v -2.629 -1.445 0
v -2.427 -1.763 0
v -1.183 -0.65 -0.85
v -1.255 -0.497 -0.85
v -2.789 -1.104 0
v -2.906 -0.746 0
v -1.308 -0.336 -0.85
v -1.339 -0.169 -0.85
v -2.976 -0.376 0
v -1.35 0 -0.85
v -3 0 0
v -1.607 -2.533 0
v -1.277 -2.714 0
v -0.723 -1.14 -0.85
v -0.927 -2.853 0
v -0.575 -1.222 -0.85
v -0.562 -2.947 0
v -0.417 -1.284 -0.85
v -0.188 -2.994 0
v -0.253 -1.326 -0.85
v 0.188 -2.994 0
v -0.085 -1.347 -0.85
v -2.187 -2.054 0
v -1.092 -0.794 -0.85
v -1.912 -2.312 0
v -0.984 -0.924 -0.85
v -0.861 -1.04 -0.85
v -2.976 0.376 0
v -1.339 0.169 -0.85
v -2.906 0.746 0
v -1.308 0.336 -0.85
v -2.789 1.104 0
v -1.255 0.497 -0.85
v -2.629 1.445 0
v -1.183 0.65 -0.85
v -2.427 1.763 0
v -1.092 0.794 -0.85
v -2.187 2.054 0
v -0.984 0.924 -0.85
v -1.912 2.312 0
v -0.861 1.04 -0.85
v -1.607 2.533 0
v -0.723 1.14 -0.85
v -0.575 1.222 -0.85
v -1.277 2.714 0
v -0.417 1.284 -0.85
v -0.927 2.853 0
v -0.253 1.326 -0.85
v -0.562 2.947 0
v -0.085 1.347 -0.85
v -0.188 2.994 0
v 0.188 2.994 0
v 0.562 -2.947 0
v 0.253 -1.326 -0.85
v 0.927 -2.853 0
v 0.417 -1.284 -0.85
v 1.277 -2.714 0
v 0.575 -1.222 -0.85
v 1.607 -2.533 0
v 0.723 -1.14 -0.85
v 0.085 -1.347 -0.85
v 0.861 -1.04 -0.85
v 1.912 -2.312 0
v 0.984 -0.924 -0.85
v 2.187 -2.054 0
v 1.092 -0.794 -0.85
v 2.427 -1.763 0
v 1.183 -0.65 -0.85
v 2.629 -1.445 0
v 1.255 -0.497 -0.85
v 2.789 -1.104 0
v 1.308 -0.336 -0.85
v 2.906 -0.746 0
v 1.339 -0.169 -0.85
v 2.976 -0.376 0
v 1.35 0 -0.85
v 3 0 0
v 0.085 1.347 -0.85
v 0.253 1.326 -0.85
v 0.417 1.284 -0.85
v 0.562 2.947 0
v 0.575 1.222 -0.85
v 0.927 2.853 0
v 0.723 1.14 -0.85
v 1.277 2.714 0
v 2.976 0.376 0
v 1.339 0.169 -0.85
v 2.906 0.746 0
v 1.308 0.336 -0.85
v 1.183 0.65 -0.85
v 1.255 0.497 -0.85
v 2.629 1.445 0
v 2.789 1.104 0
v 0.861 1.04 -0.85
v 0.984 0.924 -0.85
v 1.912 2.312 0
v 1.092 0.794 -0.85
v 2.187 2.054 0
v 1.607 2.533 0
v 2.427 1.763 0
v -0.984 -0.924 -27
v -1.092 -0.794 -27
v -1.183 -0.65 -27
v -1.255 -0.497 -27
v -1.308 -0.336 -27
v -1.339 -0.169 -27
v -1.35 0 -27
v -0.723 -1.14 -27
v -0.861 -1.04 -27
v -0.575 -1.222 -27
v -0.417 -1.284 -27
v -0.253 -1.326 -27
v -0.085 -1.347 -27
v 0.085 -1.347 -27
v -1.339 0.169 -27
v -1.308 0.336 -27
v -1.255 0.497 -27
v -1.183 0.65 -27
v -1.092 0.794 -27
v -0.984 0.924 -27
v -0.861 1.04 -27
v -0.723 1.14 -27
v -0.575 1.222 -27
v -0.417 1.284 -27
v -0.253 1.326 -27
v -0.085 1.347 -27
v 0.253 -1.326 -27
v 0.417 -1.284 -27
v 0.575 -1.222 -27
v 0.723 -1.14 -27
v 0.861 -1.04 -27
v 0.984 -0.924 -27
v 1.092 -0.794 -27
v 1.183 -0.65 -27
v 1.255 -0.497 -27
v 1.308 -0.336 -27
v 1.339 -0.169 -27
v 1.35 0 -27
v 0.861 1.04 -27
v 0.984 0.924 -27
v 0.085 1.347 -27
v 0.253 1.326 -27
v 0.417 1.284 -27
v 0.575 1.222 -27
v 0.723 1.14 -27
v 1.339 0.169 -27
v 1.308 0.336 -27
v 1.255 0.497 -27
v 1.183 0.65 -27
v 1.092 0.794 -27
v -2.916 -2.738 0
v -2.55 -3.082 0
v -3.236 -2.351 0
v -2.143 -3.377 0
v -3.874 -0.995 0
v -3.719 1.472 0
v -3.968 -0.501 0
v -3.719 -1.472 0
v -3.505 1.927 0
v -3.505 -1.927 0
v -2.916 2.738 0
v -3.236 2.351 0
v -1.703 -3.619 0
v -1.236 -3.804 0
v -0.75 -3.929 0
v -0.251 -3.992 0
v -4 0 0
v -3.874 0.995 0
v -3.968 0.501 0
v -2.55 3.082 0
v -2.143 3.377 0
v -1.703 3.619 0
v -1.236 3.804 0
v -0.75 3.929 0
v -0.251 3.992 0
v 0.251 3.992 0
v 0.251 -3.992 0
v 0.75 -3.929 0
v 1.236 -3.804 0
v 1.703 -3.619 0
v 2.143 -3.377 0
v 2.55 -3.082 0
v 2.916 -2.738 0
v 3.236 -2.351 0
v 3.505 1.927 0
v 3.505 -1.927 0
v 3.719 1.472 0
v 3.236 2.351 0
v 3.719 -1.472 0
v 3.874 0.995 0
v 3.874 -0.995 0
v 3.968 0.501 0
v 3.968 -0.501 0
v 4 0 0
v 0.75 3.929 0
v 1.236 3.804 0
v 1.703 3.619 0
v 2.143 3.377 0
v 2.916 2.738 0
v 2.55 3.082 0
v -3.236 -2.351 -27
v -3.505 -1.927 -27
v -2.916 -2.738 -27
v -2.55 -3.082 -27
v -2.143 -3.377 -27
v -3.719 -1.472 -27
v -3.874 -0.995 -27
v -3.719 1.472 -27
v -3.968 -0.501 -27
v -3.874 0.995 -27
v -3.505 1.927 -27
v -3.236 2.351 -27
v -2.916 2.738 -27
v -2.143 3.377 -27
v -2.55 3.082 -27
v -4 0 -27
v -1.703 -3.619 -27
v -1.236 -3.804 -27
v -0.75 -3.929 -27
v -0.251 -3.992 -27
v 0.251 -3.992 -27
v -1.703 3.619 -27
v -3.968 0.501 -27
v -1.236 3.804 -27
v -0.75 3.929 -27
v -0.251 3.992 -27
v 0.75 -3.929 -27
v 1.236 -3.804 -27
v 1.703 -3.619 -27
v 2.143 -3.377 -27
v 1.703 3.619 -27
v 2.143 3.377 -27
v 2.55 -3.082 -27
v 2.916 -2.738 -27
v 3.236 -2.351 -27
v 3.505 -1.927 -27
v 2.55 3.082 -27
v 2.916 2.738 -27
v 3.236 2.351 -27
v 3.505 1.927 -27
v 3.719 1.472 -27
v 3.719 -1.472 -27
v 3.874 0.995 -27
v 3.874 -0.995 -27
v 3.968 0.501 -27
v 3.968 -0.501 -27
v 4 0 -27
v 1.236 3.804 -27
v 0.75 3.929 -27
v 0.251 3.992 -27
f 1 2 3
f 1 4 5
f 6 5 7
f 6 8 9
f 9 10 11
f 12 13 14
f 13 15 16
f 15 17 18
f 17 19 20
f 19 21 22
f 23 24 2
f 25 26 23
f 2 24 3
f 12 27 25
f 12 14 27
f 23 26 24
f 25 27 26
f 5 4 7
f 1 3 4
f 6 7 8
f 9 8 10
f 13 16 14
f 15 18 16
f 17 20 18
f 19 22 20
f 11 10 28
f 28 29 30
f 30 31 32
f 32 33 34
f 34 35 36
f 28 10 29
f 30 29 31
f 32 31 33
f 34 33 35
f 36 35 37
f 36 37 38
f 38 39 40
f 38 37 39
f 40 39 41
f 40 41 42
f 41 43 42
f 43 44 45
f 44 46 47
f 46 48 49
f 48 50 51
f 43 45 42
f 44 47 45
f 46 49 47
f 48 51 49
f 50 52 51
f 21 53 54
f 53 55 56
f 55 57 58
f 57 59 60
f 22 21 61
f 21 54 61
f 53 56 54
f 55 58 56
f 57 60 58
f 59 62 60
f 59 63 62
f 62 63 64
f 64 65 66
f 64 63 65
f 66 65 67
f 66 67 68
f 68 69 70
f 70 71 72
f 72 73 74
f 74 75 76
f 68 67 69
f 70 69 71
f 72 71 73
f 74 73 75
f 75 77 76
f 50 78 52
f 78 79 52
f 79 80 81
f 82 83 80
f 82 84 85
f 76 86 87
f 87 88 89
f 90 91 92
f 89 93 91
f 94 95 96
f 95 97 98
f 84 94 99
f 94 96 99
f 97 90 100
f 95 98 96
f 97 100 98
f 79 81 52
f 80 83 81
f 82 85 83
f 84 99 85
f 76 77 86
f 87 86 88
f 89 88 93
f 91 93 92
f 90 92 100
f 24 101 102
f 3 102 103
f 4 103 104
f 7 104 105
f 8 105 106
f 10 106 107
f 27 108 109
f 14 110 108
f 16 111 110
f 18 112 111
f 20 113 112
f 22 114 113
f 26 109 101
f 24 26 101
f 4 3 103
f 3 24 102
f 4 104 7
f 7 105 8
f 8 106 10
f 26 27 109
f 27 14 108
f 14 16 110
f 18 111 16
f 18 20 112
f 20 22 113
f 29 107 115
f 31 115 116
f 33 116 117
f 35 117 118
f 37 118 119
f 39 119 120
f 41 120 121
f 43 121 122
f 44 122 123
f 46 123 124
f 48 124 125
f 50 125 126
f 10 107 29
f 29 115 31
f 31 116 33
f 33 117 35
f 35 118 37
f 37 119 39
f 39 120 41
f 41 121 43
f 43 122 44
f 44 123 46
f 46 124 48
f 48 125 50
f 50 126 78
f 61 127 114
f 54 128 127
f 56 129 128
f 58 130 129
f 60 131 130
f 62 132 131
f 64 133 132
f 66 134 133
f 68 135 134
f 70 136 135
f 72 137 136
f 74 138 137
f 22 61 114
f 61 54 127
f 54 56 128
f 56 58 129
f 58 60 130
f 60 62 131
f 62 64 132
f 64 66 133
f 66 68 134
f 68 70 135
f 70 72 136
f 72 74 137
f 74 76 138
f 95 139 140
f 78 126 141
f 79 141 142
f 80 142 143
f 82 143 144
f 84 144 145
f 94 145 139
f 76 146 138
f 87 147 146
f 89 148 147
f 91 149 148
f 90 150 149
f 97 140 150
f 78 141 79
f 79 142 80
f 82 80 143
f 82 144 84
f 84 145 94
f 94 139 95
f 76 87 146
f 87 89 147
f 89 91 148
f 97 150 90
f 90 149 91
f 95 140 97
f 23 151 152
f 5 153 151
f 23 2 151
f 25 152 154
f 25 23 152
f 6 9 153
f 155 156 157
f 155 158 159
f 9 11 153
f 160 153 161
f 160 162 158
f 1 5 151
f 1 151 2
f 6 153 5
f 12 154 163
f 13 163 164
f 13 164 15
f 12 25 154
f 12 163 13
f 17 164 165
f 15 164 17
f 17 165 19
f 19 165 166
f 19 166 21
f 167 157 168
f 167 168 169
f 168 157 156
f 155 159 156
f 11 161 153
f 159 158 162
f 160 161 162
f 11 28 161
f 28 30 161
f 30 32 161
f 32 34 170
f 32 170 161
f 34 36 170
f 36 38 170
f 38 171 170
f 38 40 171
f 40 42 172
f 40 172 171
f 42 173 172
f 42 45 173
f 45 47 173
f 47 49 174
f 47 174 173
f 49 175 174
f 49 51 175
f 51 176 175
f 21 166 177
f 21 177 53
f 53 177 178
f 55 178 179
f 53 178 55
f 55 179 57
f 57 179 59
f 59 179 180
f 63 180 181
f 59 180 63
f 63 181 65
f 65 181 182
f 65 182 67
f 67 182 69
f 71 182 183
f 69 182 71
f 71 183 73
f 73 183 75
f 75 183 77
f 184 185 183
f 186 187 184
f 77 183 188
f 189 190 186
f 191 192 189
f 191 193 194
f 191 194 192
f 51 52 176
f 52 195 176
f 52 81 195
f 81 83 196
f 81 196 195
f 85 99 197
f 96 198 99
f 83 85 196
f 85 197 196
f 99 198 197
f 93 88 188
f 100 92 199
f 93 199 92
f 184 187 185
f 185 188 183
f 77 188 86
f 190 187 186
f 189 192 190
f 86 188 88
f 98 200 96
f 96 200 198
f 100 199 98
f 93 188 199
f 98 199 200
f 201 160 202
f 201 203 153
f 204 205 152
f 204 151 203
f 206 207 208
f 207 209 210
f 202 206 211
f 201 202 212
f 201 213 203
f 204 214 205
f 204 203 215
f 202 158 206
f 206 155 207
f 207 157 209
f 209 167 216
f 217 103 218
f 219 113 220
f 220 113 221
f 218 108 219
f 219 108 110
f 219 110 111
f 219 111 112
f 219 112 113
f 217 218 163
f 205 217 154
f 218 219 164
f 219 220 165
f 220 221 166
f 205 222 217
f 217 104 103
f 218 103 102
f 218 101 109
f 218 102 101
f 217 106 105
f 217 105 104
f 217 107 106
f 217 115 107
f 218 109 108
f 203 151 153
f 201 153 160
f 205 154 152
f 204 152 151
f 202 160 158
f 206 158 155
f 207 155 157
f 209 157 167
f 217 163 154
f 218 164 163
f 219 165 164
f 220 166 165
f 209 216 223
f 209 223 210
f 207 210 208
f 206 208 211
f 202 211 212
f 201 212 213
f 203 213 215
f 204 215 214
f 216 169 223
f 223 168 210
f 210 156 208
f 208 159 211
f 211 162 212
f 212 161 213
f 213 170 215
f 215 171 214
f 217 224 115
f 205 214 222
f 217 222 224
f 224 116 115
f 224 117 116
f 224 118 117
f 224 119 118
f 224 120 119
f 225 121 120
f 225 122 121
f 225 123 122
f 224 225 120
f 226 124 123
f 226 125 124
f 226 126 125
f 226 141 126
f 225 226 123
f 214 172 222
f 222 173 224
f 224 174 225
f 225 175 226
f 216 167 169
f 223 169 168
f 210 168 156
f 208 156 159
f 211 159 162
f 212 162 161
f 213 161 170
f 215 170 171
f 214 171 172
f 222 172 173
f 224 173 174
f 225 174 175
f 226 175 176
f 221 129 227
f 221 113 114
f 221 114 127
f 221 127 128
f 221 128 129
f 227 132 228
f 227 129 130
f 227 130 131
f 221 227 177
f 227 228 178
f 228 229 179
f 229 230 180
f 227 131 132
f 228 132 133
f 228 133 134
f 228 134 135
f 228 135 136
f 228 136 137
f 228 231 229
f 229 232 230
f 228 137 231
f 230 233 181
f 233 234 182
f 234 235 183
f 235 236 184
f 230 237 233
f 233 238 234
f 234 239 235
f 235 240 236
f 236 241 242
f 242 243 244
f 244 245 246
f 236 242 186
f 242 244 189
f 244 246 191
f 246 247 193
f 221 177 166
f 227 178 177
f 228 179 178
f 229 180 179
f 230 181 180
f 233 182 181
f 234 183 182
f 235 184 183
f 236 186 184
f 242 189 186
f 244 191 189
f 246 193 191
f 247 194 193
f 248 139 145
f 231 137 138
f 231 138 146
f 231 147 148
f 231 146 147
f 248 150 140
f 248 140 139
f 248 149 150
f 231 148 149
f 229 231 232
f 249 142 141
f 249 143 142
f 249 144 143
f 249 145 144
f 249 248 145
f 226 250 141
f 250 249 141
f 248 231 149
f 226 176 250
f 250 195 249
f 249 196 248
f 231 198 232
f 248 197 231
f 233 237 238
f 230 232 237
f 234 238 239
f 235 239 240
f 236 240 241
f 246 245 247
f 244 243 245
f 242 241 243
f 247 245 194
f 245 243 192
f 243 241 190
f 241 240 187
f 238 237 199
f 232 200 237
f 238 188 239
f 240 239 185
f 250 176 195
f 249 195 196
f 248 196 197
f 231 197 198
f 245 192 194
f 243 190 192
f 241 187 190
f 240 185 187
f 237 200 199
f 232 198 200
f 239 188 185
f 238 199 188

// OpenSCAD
$fn = 50;

difference() {
	union() {
		translate(v = [0, 0, -27.0]) {
			cylinder(h = 30, r = 4.0);
		}
	}
	union() {
		translate(v = [0, 0, 0]) {
			rotate(a = [0, 0, 0]) {
				difference() {
					union() {
						translate(v = [0, 0, -30.0]) {
							cylinder(h = 30, r = 1.0);
						}
						translate(v = [0, 0, -0.85]) {
							cylinder(h = 0.85, r1 = 1.35, r2 = 3.0);
						}
						translate(v = [0, 0, -30.0]) {
							cylinder(h = 30, r = 1.35);
						}
						translate(v = [0, 0, -30.0]) {
							cylinder(h = 30, r = 1.0);
						}
					}
					union();
				}
			}
		}
		#cylinder(h = 3, r = 5.0);
	}
}
